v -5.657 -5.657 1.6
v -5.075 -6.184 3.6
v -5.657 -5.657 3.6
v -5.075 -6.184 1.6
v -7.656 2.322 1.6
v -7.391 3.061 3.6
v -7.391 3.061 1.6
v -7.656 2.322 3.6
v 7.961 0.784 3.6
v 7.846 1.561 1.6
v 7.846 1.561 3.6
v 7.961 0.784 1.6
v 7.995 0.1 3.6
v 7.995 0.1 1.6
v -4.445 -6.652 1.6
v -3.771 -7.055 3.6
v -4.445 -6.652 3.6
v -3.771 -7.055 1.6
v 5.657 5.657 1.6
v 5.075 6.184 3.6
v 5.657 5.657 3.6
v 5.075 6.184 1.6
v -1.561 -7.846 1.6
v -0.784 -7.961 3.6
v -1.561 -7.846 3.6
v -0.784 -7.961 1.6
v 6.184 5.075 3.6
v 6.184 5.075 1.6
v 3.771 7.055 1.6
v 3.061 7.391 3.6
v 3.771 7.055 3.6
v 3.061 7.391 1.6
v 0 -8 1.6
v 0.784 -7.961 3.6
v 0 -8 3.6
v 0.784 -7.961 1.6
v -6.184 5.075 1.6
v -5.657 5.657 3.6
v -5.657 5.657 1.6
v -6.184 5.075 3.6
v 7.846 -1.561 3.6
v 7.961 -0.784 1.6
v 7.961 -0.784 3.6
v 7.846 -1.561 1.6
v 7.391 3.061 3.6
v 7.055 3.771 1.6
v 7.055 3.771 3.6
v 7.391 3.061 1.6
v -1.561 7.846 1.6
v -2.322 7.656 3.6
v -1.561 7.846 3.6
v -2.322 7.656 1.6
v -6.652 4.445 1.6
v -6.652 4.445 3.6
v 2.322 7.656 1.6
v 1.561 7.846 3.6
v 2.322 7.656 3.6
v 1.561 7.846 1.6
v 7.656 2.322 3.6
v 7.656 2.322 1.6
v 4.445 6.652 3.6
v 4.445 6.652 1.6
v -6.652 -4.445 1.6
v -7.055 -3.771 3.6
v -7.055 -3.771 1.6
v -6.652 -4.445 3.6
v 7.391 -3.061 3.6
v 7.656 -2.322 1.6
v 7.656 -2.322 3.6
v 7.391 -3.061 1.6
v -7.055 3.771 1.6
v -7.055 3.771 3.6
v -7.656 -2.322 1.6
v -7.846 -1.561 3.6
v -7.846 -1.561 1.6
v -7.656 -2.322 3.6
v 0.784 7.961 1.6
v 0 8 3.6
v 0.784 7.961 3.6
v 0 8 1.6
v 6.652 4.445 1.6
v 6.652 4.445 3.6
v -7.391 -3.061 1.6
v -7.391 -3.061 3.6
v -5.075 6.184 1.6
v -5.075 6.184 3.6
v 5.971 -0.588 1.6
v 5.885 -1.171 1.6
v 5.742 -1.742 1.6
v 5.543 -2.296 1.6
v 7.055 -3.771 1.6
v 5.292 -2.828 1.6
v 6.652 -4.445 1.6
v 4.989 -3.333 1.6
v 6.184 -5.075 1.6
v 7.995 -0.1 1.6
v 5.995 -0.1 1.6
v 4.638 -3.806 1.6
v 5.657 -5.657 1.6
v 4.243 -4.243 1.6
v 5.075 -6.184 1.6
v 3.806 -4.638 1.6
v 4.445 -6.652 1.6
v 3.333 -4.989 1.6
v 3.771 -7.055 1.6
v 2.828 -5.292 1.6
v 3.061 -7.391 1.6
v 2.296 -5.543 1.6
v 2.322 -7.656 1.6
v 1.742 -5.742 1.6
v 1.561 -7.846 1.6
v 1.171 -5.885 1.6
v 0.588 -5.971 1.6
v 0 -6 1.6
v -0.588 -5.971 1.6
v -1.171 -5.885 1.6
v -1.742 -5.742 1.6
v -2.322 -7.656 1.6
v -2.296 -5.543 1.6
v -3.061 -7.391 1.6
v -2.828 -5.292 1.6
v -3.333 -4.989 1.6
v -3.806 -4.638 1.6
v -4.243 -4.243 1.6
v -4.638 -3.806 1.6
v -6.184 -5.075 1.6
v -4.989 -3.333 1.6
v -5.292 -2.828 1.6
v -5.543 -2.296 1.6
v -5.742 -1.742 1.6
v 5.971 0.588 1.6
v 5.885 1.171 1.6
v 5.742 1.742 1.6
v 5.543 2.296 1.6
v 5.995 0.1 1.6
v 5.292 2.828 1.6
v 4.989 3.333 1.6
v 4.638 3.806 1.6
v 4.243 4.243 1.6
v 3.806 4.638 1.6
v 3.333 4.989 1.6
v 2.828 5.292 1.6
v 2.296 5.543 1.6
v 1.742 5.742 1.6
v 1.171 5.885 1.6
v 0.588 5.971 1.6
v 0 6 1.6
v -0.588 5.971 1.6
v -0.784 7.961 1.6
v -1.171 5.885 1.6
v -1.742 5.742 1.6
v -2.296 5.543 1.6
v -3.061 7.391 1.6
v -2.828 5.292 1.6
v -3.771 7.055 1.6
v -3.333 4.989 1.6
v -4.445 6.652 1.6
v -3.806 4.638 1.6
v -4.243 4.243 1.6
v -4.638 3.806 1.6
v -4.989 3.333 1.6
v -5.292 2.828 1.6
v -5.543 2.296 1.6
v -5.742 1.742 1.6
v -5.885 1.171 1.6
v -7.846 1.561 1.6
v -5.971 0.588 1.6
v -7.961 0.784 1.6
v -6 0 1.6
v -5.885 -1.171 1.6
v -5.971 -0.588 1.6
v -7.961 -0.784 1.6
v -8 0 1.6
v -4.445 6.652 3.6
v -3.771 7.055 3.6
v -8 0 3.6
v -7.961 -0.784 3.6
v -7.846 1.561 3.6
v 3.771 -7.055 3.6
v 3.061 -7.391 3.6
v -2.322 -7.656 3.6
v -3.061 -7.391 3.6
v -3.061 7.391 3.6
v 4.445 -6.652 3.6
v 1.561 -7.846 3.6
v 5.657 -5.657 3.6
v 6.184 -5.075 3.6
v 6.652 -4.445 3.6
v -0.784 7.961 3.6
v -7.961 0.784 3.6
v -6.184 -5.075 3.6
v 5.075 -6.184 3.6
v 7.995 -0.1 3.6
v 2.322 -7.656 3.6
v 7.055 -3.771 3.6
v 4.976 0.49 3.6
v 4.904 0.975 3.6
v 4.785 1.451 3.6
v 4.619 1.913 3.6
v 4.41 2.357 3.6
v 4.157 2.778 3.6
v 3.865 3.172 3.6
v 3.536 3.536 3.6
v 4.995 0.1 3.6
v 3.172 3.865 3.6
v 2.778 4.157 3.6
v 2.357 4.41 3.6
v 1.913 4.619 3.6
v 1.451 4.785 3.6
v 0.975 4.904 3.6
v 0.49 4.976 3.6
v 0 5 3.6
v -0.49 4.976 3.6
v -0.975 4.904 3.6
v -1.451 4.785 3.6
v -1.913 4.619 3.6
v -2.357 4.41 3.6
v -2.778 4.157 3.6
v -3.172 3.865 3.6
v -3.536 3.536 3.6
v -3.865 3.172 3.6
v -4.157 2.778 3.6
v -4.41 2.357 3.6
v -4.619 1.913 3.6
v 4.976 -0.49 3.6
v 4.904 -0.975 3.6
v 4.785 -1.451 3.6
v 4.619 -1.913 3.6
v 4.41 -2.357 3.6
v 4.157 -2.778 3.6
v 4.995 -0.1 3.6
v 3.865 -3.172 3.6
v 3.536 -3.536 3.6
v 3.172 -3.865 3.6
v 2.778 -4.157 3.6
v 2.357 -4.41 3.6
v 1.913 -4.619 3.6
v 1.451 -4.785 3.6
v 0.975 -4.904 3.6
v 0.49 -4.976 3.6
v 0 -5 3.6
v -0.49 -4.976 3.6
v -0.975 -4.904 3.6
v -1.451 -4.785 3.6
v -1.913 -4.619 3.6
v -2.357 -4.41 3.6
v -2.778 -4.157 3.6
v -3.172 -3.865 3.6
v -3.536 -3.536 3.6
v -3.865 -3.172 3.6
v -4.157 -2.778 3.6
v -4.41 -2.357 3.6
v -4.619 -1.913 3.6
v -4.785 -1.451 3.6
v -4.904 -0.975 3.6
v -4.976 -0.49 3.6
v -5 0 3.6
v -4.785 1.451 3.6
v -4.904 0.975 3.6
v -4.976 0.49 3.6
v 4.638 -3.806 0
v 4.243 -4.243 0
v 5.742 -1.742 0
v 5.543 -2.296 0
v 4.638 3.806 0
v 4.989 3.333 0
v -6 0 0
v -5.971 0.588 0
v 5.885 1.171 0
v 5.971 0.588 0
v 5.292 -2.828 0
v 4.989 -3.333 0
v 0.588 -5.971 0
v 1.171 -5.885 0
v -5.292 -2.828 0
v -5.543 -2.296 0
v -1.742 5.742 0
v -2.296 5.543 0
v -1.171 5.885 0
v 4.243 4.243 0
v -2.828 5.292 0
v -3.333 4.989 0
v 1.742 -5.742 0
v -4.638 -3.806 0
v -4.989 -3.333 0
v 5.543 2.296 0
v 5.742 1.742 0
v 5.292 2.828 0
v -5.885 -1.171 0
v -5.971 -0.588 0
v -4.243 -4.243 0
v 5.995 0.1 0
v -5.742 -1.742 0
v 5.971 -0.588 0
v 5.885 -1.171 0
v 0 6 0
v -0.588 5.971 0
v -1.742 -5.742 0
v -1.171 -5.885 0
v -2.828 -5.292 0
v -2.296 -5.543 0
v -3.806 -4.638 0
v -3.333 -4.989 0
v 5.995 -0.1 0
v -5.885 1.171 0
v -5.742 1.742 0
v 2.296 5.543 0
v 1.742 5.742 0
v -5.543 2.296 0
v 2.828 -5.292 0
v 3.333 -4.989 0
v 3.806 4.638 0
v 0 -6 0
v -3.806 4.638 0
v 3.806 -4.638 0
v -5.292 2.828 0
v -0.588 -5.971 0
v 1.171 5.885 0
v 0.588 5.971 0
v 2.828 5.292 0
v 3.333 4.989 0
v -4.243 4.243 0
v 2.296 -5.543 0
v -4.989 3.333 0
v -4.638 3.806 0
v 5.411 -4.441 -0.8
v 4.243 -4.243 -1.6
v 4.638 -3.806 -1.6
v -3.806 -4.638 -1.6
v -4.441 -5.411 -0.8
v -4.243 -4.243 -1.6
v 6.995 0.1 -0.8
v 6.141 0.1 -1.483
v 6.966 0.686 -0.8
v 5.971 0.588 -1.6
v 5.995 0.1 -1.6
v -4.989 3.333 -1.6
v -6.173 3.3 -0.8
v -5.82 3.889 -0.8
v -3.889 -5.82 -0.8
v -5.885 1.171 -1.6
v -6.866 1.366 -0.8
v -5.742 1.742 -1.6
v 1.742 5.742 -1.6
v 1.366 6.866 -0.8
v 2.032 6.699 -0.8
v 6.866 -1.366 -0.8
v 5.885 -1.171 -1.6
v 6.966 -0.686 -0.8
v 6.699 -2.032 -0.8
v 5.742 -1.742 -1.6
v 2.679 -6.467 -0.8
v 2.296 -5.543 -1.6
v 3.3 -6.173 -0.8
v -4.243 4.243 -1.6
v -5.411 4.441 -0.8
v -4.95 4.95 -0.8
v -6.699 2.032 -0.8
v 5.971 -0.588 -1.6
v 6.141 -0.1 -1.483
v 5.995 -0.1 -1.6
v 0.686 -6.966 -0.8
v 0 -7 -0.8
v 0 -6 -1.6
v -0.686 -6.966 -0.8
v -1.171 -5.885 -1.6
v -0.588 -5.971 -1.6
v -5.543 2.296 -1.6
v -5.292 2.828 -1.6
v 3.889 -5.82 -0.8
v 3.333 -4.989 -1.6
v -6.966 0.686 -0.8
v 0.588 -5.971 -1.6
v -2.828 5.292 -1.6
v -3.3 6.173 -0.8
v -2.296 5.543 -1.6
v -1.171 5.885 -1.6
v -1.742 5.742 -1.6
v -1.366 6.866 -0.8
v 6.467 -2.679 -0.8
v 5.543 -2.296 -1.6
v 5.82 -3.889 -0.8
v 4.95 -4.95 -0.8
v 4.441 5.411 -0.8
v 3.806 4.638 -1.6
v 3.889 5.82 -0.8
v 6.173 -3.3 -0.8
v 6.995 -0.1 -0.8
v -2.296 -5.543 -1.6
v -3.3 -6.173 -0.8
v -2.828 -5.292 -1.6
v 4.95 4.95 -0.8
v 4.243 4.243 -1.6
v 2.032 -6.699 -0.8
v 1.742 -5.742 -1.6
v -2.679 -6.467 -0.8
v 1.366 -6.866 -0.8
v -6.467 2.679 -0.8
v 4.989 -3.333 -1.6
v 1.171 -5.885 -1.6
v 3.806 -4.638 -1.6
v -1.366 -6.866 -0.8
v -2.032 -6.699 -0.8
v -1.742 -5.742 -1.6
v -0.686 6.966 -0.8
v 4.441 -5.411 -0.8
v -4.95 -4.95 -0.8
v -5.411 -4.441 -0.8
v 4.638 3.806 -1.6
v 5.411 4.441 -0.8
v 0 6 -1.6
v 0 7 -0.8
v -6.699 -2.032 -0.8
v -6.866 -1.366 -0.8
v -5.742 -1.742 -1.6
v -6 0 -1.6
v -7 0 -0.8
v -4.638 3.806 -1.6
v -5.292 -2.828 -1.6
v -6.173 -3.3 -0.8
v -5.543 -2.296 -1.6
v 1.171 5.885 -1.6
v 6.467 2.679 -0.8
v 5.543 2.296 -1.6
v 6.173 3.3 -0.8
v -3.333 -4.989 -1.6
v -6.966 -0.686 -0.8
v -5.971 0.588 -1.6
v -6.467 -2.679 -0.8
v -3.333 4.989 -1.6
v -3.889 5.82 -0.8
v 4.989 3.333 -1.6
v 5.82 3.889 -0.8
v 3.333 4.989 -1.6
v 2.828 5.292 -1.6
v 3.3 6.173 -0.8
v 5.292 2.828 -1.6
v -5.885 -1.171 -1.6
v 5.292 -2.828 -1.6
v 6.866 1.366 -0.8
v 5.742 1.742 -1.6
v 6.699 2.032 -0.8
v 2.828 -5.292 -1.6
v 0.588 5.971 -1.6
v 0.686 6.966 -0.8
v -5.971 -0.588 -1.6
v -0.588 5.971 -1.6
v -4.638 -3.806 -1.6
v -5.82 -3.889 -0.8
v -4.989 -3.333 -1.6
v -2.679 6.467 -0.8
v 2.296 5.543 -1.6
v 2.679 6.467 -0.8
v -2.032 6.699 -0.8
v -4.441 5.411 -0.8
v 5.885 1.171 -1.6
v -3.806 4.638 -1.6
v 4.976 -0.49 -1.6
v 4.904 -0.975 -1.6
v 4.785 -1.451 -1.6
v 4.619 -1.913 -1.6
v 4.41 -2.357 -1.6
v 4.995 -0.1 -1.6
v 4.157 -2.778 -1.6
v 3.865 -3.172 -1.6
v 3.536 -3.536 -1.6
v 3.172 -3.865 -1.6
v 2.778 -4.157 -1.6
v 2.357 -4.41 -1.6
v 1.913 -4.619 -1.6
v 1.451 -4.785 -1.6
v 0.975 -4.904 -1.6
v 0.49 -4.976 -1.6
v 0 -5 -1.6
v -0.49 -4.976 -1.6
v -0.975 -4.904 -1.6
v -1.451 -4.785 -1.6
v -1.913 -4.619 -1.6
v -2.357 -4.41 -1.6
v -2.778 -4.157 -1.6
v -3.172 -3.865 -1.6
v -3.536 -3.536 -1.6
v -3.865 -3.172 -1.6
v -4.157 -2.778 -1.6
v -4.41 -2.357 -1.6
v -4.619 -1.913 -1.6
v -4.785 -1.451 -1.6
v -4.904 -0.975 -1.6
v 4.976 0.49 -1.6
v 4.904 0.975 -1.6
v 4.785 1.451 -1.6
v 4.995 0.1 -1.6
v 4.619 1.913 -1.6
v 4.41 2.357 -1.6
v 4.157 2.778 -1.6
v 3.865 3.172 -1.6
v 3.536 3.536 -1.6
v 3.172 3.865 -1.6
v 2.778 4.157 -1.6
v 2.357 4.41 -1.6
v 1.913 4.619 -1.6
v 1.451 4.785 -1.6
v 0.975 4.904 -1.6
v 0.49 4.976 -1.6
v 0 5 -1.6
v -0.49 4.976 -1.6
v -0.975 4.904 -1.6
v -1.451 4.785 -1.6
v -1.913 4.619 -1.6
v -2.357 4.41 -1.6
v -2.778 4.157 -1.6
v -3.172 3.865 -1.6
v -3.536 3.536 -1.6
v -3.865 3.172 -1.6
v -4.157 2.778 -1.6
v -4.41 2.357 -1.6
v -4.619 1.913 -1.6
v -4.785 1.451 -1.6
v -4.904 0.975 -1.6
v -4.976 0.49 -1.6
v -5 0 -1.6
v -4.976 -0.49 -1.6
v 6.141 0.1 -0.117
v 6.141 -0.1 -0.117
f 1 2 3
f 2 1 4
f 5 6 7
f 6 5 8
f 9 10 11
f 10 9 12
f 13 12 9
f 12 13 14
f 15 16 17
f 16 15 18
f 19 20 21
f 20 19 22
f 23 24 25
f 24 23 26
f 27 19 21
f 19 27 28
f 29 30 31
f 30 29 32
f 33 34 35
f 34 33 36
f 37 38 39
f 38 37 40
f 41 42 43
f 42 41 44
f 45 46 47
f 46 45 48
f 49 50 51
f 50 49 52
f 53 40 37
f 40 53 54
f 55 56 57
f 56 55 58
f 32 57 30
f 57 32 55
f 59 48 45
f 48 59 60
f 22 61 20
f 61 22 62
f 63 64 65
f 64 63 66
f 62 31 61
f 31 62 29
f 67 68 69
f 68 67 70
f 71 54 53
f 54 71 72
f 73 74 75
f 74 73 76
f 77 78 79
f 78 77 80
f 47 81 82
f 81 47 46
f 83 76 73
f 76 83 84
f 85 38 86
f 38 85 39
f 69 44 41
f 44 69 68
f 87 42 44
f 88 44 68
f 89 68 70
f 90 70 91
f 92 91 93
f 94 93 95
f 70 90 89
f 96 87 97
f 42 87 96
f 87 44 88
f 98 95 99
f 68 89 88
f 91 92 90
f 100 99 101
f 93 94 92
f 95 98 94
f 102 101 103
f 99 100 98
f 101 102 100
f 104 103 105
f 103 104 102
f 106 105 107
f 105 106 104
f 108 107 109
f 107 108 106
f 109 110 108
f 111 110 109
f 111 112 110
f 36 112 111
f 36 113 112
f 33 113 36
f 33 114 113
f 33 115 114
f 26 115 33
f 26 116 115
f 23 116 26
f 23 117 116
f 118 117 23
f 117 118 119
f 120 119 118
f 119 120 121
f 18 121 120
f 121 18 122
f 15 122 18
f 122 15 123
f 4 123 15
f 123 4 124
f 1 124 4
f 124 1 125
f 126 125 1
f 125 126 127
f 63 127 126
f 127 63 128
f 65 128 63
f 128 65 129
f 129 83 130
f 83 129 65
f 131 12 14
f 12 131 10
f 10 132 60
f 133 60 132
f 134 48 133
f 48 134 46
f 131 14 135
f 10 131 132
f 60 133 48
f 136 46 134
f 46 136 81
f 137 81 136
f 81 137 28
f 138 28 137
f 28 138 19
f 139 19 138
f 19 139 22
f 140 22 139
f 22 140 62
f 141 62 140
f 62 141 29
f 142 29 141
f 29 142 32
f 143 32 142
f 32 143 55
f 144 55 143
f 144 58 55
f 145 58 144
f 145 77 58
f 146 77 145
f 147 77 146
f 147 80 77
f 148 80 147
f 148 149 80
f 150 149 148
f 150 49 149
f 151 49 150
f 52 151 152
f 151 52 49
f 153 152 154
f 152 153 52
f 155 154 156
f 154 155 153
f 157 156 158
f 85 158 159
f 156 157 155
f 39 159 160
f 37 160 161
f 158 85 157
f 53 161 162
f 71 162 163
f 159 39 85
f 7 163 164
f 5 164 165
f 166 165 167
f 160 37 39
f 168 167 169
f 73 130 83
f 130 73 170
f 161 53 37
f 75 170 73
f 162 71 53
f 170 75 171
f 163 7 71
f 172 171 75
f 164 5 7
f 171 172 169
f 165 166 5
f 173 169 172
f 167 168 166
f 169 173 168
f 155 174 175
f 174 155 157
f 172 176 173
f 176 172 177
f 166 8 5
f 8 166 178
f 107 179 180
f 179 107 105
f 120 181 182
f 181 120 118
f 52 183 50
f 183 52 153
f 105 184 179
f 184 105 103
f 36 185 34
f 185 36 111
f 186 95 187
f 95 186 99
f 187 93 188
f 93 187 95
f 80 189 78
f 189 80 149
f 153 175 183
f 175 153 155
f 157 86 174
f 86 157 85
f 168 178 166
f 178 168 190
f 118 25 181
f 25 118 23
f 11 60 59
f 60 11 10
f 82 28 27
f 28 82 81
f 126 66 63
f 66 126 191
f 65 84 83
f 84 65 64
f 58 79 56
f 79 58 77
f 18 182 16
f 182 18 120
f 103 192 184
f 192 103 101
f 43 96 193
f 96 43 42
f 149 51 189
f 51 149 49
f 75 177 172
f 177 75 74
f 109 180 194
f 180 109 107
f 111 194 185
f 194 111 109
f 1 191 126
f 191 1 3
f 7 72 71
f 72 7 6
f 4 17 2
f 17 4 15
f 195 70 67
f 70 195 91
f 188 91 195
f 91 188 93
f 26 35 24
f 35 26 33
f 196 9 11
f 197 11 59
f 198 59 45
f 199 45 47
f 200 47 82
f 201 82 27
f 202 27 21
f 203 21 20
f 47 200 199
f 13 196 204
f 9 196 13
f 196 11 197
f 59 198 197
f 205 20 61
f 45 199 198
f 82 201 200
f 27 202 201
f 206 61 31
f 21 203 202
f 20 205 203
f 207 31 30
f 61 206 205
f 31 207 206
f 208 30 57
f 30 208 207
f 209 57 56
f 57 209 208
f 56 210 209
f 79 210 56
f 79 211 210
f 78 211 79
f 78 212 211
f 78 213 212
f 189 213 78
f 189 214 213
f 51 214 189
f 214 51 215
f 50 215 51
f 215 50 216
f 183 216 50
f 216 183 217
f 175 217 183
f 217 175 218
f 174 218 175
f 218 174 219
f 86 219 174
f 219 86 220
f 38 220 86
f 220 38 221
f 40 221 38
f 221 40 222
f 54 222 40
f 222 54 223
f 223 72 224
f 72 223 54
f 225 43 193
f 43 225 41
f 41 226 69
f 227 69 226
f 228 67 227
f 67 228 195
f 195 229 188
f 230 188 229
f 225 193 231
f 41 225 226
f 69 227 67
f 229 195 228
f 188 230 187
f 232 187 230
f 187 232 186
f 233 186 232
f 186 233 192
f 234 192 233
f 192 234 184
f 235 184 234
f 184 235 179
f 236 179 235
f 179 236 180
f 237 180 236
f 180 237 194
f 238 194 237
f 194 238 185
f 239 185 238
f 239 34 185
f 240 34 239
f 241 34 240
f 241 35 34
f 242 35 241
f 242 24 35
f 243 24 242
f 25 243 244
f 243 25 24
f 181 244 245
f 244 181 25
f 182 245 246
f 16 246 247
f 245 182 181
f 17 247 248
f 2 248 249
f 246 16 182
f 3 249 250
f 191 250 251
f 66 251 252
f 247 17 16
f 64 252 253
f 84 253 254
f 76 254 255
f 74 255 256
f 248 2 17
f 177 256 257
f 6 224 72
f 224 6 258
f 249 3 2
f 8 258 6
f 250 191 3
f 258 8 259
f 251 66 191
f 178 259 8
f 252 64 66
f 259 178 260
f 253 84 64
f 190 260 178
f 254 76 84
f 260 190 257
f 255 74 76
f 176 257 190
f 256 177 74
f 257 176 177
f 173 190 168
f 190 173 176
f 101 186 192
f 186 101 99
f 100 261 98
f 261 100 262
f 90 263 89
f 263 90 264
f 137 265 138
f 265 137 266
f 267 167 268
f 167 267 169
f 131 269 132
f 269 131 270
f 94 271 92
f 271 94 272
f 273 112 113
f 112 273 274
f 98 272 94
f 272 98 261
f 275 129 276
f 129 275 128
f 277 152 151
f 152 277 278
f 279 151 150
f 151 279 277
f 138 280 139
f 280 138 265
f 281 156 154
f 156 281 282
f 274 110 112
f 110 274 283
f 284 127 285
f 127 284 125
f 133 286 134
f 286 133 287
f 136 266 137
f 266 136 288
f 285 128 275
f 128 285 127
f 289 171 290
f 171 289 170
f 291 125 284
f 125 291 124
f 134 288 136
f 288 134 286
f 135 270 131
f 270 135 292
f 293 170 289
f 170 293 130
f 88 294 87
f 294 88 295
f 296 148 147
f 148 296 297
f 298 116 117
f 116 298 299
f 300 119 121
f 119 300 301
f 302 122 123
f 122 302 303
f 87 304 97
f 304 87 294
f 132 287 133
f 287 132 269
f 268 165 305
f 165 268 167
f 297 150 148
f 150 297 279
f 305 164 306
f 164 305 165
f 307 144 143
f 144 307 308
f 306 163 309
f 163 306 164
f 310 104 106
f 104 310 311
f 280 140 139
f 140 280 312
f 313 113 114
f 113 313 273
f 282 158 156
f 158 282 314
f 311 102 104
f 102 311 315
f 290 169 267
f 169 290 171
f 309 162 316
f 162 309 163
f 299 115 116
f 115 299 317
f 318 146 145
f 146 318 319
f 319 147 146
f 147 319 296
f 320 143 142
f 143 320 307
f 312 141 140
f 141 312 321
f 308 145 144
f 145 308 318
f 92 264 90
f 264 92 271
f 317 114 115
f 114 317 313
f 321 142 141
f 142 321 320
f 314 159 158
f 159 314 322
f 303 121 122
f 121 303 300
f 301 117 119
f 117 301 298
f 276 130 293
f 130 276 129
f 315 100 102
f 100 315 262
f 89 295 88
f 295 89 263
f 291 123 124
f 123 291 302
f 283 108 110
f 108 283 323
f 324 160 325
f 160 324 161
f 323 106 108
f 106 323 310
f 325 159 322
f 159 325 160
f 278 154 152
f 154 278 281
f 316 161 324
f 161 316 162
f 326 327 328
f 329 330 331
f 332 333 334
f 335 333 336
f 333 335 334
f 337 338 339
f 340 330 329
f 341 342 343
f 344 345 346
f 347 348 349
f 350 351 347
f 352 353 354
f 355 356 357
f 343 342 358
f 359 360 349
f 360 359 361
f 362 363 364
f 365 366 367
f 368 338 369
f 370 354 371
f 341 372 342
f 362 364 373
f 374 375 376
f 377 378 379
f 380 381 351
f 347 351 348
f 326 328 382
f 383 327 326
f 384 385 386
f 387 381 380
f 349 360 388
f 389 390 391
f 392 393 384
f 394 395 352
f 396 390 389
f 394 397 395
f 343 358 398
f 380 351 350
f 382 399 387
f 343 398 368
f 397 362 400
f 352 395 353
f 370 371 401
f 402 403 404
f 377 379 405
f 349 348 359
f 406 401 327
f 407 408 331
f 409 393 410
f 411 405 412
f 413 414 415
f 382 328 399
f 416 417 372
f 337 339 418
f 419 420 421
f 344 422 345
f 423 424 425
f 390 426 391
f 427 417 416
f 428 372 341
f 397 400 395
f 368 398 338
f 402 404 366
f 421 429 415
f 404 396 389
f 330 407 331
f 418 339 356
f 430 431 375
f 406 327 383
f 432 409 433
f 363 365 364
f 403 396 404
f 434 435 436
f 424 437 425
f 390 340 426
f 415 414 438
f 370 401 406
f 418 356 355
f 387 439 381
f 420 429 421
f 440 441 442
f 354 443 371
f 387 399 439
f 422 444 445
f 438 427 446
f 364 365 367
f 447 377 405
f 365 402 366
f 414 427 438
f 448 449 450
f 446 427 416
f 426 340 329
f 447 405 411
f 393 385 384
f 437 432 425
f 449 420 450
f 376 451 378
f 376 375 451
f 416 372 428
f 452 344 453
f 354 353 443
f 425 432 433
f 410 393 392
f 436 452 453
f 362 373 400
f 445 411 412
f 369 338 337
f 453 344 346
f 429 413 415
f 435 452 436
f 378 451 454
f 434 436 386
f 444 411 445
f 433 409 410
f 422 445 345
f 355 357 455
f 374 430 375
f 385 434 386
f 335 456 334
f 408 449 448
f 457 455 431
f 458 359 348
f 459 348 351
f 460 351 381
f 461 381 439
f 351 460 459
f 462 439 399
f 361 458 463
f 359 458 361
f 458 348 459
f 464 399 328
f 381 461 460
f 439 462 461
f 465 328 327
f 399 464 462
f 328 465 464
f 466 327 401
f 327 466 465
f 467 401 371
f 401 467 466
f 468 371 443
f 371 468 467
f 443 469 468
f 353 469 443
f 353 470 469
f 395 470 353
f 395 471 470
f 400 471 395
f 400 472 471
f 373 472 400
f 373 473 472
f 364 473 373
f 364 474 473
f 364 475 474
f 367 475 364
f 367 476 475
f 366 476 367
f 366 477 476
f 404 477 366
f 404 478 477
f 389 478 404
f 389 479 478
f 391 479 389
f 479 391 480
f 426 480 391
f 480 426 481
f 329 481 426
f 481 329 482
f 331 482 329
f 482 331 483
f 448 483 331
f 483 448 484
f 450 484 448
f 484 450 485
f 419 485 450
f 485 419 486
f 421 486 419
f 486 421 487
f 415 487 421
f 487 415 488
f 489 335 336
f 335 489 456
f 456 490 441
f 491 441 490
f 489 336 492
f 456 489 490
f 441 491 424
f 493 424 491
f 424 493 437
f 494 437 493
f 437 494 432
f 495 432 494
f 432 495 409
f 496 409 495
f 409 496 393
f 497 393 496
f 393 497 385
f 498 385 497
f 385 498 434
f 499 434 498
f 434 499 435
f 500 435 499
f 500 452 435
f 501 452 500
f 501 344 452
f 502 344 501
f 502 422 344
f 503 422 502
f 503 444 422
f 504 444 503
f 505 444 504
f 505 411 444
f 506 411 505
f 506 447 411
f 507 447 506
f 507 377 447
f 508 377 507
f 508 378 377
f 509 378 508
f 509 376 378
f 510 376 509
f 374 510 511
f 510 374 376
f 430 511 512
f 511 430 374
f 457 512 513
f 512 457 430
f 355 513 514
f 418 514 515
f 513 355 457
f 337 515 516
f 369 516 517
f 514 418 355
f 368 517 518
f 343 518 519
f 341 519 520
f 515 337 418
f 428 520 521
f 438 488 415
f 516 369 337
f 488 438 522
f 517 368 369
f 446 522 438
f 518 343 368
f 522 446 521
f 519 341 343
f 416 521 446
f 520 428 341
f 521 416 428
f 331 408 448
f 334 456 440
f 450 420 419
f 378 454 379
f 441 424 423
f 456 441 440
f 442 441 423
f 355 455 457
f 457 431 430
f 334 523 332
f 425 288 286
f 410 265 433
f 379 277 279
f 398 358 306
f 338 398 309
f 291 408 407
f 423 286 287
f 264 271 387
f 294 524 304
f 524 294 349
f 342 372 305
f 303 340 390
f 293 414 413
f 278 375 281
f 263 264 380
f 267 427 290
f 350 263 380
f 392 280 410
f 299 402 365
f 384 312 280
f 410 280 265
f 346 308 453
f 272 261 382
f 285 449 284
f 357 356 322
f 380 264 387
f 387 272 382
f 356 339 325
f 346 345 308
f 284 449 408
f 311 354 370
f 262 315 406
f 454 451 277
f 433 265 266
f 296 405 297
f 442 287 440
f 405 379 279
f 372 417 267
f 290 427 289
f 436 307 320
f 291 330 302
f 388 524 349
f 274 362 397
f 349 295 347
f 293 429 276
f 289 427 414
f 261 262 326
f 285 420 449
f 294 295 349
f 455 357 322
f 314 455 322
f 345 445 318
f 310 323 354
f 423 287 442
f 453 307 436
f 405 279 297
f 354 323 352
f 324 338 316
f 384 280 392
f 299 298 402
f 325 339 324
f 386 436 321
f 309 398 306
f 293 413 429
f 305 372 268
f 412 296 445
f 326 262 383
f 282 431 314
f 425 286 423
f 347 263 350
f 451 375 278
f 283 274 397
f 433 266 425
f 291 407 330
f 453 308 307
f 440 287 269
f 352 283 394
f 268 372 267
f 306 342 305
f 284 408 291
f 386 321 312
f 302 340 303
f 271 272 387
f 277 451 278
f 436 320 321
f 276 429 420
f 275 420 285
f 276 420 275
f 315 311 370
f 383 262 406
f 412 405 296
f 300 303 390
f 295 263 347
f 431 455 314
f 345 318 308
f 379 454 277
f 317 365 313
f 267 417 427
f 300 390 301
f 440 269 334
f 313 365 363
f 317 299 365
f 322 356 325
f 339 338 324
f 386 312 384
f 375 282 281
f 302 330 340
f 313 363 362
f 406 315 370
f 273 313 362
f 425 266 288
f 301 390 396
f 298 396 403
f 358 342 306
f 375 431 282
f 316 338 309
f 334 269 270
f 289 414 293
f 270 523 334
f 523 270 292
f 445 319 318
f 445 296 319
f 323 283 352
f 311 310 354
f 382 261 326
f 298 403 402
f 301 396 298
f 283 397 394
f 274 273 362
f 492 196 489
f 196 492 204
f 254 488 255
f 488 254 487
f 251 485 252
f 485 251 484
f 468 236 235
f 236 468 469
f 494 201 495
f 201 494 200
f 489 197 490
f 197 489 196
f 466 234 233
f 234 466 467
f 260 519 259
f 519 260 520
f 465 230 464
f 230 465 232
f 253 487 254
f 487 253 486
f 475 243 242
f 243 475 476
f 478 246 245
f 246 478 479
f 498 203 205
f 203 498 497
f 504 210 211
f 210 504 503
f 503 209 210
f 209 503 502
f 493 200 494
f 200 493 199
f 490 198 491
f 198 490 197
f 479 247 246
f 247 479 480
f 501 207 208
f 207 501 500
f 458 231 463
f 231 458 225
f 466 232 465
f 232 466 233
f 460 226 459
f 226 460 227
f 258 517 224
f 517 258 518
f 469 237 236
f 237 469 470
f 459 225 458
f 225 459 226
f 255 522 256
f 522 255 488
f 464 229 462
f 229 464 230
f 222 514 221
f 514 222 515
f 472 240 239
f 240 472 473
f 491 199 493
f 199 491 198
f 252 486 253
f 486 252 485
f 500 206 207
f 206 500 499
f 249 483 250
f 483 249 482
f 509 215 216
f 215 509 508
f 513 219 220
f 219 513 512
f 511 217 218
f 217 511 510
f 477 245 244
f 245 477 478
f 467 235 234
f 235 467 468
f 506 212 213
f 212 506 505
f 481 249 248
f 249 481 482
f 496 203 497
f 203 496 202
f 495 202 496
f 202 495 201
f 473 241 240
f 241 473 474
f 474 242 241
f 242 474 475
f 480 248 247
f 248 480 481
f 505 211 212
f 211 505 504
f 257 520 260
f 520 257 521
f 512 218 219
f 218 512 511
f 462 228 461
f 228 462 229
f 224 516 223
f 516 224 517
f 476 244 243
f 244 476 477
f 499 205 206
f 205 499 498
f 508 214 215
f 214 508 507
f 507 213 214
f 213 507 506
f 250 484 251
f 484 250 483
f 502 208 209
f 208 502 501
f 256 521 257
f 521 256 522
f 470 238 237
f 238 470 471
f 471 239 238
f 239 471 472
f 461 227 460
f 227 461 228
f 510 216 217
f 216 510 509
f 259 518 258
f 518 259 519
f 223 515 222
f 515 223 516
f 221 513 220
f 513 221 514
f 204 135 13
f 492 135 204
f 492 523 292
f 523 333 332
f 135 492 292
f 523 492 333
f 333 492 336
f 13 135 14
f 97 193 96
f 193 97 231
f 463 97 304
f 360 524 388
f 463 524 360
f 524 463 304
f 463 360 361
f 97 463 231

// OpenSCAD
$fn = 64;
// through hole diameter
id_hole = 10;

id = 12;    // Hole diameter
id_h = 1.6; // sheet thickness

od = id + 4;
od_h = 2;


difference() {
    union() {
        translate([0,0,id_h]) cylinder(r=od/2, h=od_h);
        cylinder(r=id/2, id_h);
        translate([0,0,-id_h]) cylinder(r1=id/2, r2=(id/2)+1, h=id_h/2);
        translate([0,0,-id_h/2]) cylinder(r2=id/2, r1=(id/2)+1, h=id_h/2);
    }

    translate([0,0,-id_h-0.5]) cylinder(r=id_hole/2, h=(od_h+id_h*2) + 1);
    
    translate([0,-0.2/2,-id_h-0.5]) cube([od/2+1, 0.2, (od_h+id_h*2) + 1]);
}
